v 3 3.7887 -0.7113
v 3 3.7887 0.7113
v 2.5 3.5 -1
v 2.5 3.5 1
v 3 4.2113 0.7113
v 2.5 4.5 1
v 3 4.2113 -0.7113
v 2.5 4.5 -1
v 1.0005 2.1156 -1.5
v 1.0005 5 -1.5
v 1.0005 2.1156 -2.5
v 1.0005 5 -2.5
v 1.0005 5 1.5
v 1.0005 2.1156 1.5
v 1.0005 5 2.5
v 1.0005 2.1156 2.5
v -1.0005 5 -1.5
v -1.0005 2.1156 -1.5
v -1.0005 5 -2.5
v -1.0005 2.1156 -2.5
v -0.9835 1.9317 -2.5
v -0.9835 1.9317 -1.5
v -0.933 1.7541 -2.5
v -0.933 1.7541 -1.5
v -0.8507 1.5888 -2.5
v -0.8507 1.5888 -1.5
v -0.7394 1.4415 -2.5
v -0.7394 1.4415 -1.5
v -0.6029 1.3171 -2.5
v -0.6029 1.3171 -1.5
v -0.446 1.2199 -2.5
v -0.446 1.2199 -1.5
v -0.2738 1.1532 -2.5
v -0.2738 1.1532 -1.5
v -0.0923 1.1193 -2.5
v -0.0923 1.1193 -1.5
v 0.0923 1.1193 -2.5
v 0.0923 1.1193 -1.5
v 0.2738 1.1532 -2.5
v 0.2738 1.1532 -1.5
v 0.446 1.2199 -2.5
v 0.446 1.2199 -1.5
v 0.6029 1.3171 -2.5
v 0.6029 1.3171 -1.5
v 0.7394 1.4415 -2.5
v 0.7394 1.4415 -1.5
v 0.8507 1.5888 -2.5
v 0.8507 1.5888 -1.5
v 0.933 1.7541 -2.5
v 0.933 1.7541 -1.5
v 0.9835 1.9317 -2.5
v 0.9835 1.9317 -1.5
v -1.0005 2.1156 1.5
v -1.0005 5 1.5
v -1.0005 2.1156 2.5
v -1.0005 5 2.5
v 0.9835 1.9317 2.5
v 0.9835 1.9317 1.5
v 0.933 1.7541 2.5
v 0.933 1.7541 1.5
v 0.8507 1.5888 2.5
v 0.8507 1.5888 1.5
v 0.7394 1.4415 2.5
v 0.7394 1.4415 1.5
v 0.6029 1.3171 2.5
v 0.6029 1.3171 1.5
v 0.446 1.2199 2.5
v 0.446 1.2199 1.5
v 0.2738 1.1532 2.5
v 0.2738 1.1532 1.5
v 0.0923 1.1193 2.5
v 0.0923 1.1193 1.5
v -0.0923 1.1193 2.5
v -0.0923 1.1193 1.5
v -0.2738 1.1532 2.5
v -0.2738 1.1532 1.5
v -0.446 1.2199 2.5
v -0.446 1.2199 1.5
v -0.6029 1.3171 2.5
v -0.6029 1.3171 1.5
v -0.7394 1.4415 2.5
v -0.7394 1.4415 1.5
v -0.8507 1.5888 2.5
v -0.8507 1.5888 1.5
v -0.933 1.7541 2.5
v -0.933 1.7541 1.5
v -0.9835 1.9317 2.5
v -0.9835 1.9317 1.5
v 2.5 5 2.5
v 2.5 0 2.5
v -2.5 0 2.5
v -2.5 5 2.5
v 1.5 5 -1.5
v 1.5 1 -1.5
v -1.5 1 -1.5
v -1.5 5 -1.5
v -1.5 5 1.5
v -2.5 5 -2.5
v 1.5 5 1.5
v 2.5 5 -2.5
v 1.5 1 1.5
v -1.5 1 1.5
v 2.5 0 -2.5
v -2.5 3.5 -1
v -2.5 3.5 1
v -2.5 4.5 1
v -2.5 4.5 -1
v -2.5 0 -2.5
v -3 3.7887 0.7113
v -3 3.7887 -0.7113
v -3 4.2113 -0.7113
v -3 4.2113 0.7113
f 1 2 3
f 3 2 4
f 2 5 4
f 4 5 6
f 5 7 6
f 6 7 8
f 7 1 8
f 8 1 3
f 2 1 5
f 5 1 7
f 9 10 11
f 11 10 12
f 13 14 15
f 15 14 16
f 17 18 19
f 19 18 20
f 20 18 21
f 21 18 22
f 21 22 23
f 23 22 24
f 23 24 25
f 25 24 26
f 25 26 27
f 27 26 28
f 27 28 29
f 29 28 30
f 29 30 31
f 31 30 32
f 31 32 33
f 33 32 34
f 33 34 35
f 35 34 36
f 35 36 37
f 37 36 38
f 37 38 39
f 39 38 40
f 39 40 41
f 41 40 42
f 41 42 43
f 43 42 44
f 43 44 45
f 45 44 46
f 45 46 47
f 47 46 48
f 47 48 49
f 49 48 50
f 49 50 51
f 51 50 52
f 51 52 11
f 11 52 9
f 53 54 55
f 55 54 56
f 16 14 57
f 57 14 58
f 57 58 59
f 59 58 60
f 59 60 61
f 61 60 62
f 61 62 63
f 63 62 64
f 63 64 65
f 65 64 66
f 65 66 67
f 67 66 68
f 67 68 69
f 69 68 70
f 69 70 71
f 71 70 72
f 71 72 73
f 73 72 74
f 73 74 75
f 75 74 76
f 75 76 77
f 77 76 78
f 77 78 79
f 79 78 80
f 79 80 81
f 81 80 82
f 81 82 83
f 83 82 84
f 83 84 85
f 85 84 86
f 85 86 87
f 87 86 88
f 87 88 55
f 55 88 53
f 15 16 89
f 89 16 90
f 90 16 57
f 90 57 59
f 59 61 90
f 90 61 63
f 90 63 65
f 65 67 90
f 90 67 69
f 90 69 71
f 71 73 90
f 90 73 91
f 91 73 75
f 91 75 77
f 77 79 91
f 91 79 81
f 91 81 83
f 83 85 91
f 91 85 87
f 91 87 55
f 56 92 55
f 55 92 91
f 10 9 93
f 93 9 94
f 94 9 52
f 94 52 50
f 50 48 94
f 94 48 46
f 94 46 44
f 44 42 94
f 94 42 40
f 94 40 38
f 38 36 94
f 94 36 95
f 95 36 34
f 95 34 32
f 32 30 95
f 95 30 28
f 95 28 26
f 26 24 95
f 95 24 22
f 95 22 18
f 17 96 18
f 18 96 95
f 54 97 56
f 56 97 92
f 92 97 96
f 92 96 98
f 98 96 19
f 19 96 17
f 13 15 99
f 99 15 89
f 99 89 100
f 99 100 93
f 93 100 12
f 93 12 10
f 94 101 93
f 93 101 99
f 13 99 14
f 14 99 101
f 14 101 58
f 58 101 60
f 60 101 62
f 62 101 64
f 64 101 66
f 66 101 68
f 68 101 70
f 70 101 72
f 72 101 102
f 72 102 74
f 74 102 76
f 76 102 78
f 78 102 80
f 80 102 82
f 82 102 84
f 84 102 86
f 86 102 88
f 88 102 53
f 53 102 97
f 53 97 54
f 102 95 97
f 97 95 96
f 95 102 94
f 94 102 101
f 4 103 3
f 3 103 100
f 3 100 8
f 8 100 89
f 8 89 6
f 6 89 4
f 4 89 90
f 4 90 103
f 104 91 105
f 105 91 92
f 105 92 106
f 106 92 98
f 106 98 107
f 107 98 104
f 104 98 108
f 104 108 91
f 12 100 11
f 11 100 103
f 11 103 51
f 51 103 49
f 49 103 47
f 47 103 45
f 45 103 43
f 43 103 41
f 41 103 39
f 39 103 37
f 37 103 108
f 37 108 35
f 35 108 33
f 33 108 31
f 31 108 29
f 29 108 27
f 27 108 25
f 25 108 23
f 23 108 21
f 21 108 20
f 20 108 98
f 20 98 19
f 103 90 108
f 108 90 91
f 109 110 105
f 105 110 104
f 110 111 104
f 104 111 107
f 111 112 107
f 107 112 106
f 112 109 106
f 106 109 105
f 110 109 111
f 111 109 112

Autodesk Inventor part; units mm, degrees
ref_plane "YZ Plane" through (0, 0, 0) normal (1, 0, 0) x (0, 1, 0)
ref_plane "XZ Plane" through (0, 0, 0) normal (0, 1, 0) x (-1, 0, 0)
ref_plane "XY Plane" through (0, 0, 0) normal (0, 0, 1) x (1, 0, 0)
sketch "Sketch1" plane through (0, 0, 0) normal (0, 1, 0) x (-1, 0, 0)
  line L0 (-2.5, 2.5) -> (2.5, 2.5)
  line L1 (2.5, 2.5) -> (2.5, -2.5)
  line L2 (2.5, -2.5) -> (-2.5, -2.5)
  line L3 (-2.5, -2.5) -> (-2.5, 2.5)
  line L4 (-2.5, 2.5) -> (2.5, -2.5) construction
  line L5 (2.5, 2.5) -> (-2.5, -2.5) construction
  point P0 (0, 0)
  dimension "d0" = 5
  dimension "d1" = 5
extrude "Extrusion1" add sketch "Sketch1" along normal blind 5
shell "Shell1" thickness 1 removed faces 1 at (-0.8333, 5, -0.8333)
sketch "Sketch3" plane through (-2.5, 0, 2.5) normal (0, 0, 1) x (1, 0, 0)
  line L0 (2.5, 9.1674) -> (2.5, 2.1156) construction
  line L1 (1.4995, 9.1674) -> (1.4995, 2.1156)
  line L2 (3.5005, 2.1156) -> (3.5005, 9.1674)
  arc A0 (3.5005, 9.1674) -> (1.4995, 9.1674) centre (2.5, 9.1674) ccw
  arc A1 (1.4995, 2.1156) -> (3.5005, 2.1156) centre (2.5, 2.1156) ccw
  point P0 (2.5, 0)
  point P1 (2.5, 5.6415)
extrude "Extrusion3" cut sketch "Sketch3" against normal through all
sketch "Sketch4" plane through (0, 5, 0) normal (0, 1, 0) x (1, 0, 0)
  point P0 (0, 0)
sketch "Sketch5" plane through (0, 5, 0) normal (0, 1, 0) x (1, 0, 0)
  point P0 (0, 0)
sketch "Sketch6" plane through (0, 5, 0) normal (0, 1, 0) x (1, 0, 0)
  point P0 (0, 0)
sketch "Sketch7" plane through (0, 0, 0) normal (0, -1, 0) x (1, 0, 0)
  point P0 (0, 0)
sketch "Sketch8" plane through (-2.5, 0, -2.5) normal (-1, 0, 0) x (0, 0, 1)
  point P0 (2.5, 0)
sketch "Sketch9" plane through (2.5, 0, 2.5) normal (1, 0, 0) x (0, 0, -1)
  line L0 (1.5, 3.5) -> (3.5, 3.5)
  line L1 (3.5, 3.5) -> (3.5, 4.5)
  line L2 (3.5, 4.5) -> (1.5, 4.5)
  line L3 (1.5, 4.5) -> (1.5, 3.5)
  line L4 (1.5, 3.5) -> (3.5, 4.5) construction
  line L5 (3.5, 3.5) -> (1.5, 4.5) construction
  line L6 (0, 5) -> (5, 5) projected
  point P0 (2.5, 0)
  point P1 (2.5, 4)
  dimension "d10" = 1
  dimension "d14" = 2
  dimension "d15" = 1
extrude "Extrusion4" add sketch "Sketch9" along normal blind 0.5 draft -30
sketch "Sketch10" plane through (-2.5, 0, -2.5) normal (-1, 0, 0) x (0, 0, 1)
  line L0 (1.5, 3.5) -> (3.5, 3.5)
  line L1 (3.5, 3.5) -> (3.5, 4.5)
  line L2 (3.5, 4.5) -> (1.5, 4.5)
  line L3 (1.5, 4.5) -> (1.5, 3.5)
  line L4 (1.5, 3.5) -> (3.5, 4.5) construction
  line L5 (3.5, 3.5) -> (1.5, 4.5) construction
  line L6 (0, 5) -> (5, 5) projected
  point P0 (2.5, 0)
  point P1 (2.5, 4)
  dimension "d13" = 1
  dimension "d16" = 2
  dimension "d17" = 1
extrude "Extrusion5" add sketch "Sketch10" along normal blind 0.5 draft -30
equation "\"d16\" = d14"
equation "\"d17\" = d15"
properties part number "snapfit_v07"
